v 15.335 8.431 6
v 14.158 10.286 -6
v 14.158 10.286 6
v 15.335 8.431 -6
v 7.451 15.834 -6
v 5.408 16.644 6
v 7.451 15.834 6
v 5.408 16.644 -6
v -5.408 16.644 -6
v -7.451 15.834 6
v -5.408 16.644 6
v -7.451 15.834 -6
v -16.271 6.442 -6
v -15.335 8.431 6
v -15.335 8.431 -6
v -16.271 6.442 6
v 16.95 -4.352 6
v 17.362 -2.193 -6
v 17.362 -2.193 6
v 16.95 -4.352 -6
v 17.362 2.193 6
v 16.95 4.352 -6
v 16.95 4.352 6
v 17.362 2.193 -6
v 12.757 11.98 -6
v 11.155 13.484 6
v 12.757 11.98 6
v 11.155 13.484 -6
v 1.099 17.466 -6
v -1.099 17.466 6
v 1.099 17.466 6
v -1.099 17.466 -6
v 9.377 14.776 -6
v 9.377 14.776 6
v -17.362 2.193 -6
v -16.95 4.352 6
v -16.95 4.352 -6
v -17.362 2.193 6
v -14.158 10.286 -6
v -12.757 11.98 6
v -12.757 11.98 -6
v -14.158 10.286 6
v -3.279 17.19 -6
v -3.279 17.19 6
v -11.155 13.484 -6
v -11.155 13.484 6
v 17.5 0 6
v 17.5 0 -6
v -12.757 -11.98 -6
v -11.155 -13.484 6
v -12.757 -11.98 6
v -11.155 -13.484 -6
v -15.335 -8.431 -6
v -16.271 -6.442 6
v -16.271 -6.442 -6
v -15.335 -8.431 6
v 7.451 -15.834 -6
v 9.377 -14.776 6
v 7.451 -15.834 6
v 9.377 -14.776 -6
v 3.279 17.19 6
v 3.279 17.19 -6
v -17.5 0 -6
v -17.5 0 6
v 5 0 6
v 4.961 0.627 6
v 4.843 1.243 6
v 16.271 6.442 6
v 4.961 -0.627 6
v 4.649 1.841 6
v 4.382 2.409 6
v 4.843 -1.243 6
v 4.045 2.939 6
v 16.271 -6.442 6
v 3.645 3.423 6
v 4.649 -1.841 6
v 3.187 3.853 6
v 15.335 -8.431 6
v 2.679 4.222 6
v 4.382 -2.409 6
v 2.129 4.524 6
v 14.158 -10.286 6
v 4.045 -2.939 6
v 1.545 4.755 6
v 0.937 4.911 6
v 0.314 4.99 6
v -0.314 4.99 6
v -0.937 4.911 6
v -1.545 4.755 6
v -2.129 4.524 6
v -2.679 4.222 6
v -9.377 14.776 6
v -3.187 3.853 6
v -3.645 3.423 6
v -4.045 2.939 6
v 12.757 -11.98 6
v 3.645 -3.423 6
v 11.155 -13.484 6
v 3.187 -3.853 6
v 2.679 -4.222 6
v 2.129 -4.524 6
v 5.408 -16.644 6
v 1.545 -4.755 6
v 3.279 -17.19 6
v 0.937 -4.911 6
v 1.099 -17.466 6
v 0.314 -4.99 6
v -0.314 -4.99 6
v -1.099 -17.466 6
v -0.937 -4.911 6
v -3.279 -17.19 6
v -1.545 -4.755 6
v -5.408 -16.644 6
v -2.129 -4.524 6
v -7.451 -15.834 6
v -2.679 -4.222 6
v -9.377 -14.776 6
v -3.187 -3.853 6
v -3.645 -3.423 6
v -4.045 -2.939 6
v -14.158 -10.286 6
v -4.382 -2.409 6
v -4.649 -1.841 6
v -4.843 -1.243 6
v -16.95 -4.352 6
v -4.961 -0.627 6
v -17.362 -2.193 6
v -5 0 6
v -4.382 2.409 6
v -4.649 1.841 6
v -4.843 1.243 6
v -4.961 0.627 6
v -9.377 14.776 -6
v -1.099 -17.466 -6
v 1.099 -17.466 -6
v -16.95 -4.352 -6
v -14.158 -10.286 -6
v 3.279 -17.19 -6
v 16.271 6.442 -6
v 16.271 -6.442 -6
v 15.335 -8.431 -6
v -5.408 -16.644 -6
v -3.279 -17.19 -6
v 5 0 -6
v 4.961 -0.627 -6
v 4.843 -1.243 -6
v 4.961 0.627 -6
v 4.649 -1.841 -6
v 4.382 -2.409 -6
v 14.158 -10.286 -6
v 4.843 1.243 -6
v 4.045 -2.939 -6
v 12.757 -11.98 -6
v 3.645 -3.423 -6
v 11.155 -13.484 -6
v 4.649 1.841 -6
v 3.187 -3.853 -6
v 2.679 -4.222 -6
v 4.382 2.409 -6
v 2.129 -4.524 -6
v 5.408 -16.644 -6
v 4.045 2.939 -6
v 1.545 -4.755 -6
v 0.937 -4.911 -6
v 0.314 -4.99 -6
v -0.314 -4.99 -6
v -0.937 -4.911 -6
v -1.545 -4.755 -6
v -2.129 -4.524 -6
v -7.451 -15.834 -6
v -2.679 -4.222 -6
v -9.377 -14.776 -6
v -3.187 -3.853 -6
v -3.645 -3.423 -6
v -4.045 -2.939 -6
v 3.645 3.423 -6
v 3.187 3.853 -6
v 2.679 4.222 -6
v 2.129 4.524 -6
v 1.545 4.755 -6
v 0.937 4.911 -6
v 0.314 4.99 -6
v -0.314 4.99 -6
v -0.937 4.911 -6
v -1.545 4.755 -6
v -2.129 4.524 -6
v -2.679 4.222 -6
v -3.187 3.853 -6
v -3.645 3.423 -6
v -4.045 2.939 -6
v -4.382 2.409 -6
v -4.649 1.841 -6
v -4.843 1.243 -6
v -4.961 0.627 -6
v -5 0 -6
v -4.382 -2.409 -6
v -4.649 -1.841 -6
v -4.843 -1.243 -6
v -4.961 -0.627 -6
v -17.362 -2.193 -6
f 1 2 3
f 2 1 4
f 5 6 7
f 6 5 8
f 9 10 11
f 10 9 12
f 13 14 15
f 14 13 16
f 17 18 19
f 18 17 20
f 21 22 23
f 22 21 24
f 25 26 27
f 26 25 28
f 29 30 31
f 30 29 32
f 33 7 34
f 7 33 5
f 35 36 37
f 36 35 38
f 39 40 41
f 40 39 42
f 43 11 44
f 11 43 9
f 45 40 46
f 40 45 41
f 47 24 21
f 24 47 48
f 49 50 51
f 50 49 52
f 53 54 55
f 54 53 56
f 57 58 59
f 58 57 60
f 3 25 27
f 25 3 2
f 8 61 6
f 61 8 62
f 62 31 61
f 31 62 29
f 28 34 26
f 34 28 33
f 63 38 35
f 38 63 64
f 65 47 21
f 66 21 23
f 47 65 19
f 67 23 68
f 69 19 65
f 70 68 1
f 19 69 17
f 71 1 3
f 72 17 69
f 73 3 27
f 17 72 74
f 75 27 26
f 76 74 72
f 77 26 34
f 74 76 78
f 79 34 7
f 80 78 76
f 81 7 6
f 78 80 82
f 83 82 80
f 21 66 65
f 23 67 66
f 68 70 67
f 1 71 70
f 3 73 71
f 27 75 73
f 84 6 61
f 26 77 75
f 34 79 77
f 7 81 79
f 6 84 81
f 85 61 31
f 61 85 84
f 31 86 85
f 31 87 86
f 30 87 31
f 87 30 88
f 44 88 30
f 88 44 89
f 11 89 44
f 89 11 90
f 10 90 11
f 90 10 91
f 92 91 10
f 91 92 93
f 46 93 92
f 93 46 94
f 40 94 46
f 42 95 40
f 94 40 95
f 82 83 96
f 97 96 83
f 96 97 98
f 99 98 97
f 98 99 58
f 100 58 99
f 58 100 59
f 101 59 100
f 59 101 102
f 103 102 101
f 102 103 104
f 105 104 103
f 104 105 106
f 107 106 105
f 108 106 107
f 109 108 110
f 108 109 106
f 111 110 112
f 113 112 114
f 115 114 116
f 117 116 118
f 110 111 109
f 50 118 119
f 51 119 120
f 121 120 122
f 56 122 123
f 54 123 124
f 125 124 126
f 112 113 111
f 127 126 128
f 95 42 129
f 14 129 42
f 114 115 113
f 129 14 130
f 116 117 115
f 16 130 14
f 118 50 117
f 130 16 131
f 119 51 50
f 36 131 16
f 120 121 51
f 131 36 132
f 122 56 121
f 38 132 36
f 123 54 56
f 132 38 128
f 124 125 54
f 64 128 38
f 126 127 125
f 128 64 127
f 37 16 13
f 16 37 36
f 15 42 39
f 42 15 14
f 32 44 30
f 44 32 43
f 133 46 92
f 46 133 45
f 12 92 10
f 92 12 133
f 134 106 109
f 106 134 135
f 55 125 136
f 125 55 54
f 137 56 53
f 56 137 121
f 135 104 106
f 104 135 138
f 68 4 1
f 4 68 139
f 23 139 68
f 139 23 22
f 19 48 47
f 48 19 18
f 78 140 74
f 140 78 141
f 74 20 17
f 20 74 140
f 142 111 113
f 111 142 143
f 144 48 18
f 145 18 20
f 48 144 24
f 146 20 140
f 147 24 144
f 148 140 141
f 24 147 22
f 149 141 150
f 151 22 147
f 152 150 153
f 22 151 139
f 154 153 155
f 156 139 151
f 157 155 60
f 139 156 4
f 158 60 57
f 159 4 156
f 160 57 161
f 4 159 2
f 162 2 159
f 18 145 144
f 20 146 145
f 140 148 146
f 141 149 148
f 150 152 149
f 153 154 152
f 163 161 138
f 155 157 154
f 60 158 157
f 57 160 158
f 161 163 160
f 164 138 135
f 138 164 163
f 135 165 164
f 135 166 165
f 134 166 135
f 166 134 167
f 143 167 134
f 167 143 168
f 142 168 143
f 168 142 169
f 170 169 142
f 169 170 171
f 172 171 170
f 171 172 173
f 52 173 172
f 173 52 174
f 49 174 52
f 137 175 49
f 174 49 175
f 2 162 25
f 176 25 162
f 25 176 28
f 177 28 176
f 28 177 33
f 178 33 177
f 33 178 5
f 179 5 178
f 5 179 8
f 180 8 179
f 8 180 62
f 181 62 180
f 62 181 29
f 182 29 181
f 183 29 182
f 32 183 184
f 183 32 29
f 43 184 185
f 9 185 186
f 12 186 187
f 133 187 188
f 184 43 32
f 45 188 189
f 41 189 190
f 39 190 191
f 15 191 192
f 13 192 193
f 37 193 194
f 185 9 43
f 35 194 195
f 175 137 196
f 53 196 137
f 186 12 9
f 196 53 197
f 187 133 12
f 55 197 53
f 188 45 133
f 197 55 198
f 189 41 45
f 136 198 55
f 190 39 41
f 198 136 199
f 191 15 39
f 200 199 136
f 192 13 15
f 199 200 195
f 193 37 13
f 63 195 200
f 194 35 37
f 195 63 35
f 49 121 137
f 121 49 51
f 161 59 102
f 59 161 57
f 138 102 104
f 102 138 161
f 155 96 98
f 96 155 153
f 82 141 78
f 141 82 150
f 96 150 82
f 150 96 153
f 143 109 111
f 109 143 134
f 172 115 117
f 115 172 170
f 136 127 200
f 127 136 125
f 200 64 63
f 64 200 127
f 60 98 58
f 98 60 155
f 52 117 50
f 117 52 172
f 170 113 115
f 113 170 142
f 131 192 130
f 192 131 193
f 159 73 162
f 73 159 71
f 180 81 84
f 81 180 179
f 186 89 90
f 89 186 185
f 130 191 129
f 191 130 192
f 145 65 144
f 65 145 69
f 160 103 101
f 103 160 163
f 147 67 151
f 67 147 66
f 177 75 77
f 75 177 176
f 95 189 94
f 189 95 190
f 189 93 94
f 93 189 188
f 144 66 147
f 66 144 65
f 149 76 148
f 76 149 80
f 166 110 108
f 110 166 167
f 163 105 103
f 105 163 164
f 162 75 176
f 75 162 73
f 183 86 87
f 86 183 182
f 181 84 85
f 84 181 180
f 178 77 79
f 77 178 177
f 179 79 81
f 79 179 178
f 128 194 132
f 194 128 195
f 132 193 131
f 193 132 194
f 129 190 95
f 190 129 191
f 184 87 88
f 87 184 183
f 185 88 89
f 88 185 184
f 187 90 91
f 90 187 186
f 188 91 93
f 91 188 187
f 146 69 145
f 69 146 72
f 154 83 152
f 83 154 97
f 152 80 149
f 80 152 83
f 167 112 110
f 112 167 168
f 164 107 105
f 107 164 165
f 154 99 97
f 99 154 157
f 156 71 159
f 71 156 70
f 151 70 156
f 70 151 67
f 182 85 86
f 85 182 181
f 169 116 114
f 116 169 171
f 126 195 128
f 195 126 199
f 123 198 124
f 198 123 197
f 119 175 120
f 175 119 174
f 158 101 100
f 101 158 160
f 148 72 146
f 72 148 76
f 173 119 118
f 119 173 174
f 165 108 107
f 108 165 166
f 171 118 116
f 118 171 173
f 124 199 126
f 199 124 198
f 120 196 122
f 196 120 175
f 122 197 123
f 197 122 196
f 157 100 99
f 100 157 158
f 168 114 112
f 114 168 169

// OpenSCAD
$fn = 50;


difference() {
	union() {
		translate(v = [0, 0, -6.0000000000]) {
			cylinder(h = 12, r = 17.5000000000);
		}
	}
	union() {
		translate(v = [0, 0, -100.0000000000]) {
			cylinder(h = 200, r = 5);
		}
	}
}
